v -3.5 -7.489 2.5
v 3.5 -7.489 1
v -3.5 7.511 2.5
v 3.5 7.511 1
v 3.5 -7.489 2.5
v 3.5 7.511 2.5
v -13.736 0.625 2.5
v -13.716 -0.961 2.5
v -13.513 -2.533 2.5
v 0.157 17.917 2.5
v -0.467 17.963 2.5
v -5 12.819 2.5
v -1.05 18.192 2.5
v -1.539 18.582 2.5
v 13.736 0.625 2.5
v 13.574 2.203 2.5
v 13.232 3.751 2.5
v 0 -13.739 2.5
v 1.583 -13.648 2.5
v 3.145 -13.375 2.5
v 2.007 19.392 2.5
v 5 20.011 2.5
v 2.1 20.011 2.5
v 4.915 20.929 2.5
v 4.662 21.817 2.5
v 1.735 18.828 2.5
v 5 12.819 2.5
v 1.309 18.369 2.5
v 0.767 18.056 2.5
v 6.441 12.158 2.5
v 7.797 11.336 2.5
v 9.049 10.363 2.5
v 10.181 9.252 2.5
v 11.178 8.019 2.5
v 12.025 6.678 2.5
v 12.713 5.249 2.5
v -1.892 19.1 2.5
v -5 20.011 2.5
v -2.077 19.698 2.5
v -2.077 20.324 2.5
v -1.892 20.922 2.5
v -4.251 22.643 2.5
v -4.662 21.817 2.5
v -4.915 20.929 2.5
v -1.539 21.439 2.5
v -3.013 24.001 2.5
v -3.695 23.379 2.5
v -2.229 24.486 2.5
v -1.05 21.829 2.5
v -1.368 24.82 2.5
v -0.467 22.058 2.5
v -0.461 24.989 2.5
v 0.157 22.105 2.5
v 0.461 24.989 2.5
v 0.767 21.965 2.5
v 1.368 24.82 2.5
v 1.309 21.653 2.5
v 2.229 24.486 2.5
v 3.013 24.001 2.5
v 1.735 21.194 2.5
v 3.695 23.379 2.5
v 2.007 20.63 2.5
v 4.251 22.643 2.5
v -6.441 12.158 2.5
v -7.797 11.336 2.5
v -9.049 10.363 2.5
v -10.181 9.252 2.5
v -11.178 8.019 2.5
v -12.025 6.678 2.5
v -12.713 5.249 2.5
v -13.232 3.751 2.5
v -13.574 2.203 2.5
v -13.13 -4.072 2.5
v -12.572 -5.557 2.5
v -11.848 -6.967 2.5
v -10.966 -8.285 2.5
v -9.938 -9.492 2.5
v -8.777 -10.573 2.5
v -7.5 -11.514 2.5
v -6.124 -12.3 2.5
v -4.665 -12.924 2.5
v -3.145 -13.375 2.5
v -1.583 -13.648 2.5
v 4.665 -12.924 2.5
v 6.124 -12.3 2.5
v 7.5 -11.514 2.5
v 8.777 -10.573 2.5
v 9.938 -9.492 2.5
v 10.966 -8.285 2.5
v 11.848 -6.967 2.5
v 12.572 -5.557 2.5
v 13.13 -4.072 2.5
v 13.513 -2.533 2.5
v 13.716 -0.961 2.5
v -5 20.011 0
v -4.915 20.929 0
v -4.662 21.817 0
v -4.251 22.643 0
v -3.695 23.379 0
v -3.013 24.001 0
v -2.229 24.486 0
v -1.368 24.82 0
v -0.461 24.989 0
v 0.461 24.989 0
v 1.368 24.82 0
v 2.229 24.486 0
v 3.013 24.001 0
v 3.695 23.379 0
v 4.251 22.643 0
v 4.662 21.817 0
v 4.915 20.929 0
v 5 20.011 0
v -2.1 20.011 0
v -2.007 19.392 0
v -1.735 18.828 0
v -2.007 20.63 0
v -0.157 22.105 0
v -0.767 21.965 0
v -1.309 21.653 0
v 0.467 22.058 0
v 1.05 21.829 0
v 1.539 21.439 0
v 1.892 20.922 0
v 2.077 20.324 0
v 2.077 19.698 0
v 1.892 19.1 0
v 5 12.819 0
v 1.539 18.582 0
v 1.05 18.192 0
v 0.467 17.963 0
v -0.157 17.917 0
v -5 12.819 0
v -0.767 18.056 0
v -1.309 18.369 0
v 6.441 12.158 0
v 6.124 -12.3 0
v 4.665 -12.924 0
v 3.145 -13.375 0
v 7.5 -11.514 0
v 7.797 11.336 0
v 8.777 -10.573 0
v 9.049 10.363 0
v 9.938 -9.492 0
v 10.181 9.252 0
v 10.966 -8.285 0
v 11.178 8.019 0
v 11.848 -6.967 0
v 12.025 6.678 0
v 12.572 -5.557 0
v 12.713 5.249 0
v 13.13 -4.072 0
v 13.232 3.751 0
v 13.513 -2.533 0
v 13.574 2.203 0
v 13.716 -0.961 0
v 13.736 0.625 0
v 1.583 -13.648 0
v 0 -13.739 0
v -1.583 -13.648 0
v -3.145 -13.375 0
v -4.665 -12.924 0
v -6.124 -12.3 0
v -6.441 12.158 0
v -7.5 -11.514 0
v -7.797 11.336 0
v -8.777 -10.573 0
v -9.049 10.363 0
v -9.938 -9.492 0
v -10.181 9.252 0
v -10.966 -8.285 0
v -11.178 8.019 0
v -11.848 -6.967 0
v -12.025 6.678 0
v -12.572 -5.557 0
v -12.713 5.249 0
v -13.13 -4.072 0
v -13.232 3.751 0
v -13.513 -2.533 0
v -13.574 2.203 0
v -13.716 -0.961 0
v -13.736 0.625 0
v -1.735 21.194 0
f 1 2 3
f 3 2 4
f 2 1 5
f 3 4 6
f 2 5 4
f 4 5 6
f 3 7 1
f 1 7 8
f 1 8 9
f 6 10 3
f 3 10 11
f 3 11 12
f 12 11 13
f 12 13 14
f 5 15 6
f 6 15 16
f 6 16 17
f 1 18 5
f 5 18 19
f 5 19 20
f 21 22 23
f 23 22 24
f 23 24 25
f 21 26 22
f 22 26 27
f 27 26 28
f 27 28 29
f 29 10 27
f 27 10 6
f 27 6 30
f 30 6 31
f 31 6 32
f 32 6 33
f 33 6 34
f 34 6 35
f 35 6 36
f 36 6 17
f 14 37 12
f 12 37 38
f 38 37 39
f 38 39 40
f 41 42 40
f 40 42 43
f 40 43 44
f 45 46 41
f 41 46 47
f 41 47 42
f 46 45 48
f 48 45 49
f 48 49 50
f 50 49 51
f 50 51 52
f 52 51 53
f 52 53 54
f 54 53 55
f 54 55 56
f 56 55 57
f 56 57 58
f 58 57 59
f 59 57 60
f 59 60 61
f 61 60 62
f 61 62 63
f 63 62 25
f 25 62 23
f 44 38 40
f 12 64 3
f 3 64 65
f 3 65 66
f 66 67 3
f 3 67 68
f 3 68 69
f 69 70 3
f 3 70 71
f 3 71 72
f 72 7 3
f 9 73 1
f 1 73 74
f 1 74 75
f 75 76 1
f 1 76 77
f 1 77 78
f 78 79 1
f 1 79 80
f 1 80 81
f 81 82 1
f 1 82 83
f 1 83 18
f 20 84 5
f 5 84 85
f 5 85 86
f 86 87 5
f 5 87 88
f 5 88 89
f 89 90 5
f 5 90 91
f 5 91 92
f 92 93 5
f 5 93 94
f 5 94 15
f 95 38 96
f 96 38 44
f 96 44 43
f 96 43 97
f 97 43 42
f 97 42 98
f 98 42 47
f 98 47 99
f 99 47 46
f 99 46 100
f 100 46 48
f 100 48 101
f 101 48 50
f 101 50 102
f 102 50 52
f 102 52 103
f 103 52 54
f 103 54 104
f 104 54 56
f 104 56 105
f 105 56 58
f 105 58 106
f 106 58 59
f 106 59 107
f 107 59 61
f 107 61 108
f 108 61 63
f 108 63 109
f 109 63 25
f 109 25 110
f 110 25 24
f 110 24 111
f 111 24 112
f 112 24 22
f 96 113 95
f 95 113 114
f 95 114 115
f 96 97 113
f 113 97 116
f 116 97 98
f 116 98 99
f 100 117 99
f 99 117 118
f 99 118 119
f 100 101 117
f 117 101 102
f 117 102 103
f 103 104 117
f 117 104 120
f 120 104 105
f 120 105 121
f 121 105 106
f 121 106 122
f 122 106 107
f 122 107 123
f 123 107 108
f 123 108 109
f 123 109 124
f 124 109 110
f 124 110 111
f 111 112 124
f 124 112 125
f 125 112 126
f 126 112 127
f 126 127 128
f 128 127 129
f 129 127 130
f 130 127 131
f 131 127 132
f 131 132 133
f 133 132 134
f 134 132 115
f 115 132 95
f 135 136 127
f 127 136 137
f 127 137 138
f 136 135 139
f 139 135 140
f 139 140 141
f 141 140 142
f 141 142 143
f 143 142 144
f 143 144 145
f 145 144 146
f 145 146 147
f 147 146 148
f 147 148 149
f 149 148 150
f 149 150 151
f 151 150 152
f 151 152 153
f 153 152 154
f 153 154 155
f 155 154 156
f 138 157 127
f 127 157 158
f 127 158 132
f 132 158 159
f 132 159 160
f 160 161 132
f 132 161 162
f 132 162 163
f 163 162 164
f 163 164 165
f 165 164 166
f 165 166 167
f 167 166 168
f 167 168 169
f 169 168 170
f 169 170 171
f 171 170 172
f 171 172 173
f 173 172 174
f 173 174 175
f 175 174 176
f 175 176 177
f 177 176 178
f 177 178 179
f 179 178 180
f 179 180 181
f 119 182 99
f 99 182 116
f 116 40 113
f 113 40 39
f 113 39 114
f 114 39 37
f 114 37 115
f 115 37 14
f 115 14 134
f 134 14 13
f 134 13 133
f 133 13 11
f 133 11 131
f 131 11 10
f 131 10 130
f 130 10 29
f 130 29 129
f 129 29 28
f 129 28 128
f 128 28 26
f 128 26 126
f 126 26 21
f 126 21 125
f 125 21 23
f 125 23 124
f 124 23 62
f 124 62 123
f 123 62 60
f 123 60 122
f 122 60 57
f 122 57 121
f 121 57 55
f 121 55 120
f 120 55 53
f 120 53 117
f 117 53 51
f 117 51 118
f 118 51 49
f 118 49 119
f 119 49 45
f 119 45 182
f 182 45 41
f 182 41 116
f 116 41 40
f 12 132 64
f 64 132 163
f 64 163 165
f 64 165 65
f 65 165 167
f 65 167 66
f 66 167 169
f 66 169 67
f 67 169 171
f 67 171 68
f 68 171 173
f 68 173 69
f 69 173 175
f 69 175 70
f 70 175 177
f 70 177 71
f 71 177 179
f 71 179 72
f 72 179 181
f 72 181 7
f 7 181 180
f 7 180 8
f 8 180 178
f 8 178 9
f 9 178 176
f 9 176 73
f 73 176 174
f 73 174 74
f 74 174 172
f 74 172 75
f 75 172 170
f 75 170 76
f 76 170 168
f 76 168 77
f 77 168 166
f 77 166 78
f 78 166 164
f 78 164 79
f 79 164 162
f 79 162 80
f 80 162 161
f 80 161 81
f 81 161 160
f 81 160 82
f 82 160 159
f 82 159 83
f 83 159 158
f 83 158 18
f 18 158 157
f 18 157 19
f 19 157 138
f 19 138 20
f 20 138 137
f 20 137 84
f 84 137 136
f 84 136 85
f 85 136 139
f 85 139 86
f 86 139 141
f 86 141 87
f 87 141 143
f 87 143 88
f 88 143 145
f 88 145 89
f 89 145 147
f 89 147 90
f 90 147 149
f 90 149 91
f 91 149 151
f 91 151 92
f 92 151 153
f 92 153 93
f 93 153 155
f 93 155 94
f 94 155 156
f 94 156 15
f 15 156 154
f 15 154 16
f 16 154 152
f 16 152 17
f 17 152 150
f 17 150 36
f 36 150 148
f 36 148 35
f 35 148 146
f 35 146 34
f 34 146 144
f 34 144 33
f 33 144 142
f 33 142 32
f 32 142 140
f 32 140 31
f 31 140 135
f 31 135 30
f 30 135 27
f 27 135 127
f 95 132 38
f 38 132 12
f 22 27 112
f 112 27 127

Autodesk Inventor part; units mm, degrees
sketch "Sketch1" plane through (0, 0, 0) normal (0, 0, 1) x (1, 0, 0)
  line L0 (0, 2.8582) -> (0, -2.8582) construction
  line L1 (-5.7775, 0) -> (5.7775, 0) construction
  circle A0 centre (0, 0) radius 13.75
  line L2 (5, 12.8087) -> (5, 25)
  line L3 (5, 25) -> (-5, 25)
  line L4 (-5, 25) -> (-5, 12.8087)
  line L5 (0, 32.75) -> (0, -21.5) construction
  point P0 (0, 20)
  dimension "d0" = 27.5
  dimension "d1" = 20
  dimension "d2" = 5
  dimension "d3" = 5
  dimension "d4" = 5
extrude "Extrusion1" add sketch "Sketch1" along normal blind 2.5
sketch "Sketch2" plane through (0, 0, 2.5) normal (0, 0, 1) x (1, 0, 0)
  line L0 (-5, 25) -> (-5, 12.8087) projected
  arc A0 (-5, 12.8087) -> (5, 12.8087) centre (0, 0) ccw projected
  line L1 (-5, 12.8087) -> (-5, 25) projected
  line L2 (-5, 25) -> (5, 25) projected
  line L3 (5, 25) -> (5, 12.8087) projected
  point P0 (0, 20)
  dimension "d7" = 5
  dimension "d8" = 5
hole "Hole1" at (0, 20, 2.5) direction (0, 0, -1) diameter 4.2 end through all
fillet "Fillet1" radius 5 2 edges at (-5, 25, 1.25) (5, 25, 1.25)
sketch "Sketch3" plane through (0, 0, 0) normal (1, 0, 0) x (0, 1, 0)
  line L0 (12.8087, 2.5) -> (-13.75, 2.5) projected
  line L1 (-7.5, 2.5) -> (7.5, 2.5)
  line L2 (7.5, 2.5) -> (7.5, 1)
  line L3 (7.5, 1) -> (-7.5, 1)
  line L4 (-7.5, 1) -> (-7.5, 2.5)
  line L5 (0, 3) -> (0, -0.5) projected
  line L6 (22.1, 2.5) -> (25, 2.5) projected
  line L7 (25, 2.5) -> (25, 0) projected
  line L8 (25, 0) -> (22.1, 0) projected
  line L9 (22.1, 0) -> (22.1, 2.5) projected
  line L10 (17.9, 0) -> (-13.75, 0) projected
  line L11 (-13.75, 0) -> (-13.75, 2.5) projected
  line L12 (-13.75, 2.5) -> (17.9, 2.5) projected
  line L13 (17.9, 2.5) -> (17.9, 0) projected
  point P0 (0, 0)
  point P1 (7.5, 2.5)
  dimension "d17" = 15
  dimension "d18" = 7.5
  dimension "d19" = 1.5
extrude "Extrusion2" cut sketch "Sketch3" along normal mid plane 7 contours L2 L3 L5 L0 | L5 L3 L4 L0
sketch "Sketch4" plane through (-3.5, 7.5, 2.5) normal (0, -1, 0) x (1, 0, 0)
  line L0 (15.0244, -2.5) -> (-8.0244, -2.5) projected
  line L1 (-8.0244, -2.5) -> (-8.0244, 0) projected
  line L2 (-8.0244, 0) -> (0, 0) projected
  line L3 (0, 0) -> (7, 0) projected
  line L4 (7, 0) -> (7, -1.5) projected
  line L5 (7, -1.5) -> (0, -1.5) projected
  line L6 (0, 0) -> (0, -1.5) projected
  line L7 (15.0244, 0) -> (15.0244, -2.5) projected
  line L8 (7, 0) -> (15.0244, 0) projected
  line L9 (0, 0) -> (7, -1.5)
  point P0 (3.5, -2.5)
extrude "Extrusion3" add sketch "Sketch4" along normal up to surface (15 mm away) contours L9 L5 L6
equation "\"d18\" = 0.5 * d17"
properties part number "Filler Cap" material "S235"
